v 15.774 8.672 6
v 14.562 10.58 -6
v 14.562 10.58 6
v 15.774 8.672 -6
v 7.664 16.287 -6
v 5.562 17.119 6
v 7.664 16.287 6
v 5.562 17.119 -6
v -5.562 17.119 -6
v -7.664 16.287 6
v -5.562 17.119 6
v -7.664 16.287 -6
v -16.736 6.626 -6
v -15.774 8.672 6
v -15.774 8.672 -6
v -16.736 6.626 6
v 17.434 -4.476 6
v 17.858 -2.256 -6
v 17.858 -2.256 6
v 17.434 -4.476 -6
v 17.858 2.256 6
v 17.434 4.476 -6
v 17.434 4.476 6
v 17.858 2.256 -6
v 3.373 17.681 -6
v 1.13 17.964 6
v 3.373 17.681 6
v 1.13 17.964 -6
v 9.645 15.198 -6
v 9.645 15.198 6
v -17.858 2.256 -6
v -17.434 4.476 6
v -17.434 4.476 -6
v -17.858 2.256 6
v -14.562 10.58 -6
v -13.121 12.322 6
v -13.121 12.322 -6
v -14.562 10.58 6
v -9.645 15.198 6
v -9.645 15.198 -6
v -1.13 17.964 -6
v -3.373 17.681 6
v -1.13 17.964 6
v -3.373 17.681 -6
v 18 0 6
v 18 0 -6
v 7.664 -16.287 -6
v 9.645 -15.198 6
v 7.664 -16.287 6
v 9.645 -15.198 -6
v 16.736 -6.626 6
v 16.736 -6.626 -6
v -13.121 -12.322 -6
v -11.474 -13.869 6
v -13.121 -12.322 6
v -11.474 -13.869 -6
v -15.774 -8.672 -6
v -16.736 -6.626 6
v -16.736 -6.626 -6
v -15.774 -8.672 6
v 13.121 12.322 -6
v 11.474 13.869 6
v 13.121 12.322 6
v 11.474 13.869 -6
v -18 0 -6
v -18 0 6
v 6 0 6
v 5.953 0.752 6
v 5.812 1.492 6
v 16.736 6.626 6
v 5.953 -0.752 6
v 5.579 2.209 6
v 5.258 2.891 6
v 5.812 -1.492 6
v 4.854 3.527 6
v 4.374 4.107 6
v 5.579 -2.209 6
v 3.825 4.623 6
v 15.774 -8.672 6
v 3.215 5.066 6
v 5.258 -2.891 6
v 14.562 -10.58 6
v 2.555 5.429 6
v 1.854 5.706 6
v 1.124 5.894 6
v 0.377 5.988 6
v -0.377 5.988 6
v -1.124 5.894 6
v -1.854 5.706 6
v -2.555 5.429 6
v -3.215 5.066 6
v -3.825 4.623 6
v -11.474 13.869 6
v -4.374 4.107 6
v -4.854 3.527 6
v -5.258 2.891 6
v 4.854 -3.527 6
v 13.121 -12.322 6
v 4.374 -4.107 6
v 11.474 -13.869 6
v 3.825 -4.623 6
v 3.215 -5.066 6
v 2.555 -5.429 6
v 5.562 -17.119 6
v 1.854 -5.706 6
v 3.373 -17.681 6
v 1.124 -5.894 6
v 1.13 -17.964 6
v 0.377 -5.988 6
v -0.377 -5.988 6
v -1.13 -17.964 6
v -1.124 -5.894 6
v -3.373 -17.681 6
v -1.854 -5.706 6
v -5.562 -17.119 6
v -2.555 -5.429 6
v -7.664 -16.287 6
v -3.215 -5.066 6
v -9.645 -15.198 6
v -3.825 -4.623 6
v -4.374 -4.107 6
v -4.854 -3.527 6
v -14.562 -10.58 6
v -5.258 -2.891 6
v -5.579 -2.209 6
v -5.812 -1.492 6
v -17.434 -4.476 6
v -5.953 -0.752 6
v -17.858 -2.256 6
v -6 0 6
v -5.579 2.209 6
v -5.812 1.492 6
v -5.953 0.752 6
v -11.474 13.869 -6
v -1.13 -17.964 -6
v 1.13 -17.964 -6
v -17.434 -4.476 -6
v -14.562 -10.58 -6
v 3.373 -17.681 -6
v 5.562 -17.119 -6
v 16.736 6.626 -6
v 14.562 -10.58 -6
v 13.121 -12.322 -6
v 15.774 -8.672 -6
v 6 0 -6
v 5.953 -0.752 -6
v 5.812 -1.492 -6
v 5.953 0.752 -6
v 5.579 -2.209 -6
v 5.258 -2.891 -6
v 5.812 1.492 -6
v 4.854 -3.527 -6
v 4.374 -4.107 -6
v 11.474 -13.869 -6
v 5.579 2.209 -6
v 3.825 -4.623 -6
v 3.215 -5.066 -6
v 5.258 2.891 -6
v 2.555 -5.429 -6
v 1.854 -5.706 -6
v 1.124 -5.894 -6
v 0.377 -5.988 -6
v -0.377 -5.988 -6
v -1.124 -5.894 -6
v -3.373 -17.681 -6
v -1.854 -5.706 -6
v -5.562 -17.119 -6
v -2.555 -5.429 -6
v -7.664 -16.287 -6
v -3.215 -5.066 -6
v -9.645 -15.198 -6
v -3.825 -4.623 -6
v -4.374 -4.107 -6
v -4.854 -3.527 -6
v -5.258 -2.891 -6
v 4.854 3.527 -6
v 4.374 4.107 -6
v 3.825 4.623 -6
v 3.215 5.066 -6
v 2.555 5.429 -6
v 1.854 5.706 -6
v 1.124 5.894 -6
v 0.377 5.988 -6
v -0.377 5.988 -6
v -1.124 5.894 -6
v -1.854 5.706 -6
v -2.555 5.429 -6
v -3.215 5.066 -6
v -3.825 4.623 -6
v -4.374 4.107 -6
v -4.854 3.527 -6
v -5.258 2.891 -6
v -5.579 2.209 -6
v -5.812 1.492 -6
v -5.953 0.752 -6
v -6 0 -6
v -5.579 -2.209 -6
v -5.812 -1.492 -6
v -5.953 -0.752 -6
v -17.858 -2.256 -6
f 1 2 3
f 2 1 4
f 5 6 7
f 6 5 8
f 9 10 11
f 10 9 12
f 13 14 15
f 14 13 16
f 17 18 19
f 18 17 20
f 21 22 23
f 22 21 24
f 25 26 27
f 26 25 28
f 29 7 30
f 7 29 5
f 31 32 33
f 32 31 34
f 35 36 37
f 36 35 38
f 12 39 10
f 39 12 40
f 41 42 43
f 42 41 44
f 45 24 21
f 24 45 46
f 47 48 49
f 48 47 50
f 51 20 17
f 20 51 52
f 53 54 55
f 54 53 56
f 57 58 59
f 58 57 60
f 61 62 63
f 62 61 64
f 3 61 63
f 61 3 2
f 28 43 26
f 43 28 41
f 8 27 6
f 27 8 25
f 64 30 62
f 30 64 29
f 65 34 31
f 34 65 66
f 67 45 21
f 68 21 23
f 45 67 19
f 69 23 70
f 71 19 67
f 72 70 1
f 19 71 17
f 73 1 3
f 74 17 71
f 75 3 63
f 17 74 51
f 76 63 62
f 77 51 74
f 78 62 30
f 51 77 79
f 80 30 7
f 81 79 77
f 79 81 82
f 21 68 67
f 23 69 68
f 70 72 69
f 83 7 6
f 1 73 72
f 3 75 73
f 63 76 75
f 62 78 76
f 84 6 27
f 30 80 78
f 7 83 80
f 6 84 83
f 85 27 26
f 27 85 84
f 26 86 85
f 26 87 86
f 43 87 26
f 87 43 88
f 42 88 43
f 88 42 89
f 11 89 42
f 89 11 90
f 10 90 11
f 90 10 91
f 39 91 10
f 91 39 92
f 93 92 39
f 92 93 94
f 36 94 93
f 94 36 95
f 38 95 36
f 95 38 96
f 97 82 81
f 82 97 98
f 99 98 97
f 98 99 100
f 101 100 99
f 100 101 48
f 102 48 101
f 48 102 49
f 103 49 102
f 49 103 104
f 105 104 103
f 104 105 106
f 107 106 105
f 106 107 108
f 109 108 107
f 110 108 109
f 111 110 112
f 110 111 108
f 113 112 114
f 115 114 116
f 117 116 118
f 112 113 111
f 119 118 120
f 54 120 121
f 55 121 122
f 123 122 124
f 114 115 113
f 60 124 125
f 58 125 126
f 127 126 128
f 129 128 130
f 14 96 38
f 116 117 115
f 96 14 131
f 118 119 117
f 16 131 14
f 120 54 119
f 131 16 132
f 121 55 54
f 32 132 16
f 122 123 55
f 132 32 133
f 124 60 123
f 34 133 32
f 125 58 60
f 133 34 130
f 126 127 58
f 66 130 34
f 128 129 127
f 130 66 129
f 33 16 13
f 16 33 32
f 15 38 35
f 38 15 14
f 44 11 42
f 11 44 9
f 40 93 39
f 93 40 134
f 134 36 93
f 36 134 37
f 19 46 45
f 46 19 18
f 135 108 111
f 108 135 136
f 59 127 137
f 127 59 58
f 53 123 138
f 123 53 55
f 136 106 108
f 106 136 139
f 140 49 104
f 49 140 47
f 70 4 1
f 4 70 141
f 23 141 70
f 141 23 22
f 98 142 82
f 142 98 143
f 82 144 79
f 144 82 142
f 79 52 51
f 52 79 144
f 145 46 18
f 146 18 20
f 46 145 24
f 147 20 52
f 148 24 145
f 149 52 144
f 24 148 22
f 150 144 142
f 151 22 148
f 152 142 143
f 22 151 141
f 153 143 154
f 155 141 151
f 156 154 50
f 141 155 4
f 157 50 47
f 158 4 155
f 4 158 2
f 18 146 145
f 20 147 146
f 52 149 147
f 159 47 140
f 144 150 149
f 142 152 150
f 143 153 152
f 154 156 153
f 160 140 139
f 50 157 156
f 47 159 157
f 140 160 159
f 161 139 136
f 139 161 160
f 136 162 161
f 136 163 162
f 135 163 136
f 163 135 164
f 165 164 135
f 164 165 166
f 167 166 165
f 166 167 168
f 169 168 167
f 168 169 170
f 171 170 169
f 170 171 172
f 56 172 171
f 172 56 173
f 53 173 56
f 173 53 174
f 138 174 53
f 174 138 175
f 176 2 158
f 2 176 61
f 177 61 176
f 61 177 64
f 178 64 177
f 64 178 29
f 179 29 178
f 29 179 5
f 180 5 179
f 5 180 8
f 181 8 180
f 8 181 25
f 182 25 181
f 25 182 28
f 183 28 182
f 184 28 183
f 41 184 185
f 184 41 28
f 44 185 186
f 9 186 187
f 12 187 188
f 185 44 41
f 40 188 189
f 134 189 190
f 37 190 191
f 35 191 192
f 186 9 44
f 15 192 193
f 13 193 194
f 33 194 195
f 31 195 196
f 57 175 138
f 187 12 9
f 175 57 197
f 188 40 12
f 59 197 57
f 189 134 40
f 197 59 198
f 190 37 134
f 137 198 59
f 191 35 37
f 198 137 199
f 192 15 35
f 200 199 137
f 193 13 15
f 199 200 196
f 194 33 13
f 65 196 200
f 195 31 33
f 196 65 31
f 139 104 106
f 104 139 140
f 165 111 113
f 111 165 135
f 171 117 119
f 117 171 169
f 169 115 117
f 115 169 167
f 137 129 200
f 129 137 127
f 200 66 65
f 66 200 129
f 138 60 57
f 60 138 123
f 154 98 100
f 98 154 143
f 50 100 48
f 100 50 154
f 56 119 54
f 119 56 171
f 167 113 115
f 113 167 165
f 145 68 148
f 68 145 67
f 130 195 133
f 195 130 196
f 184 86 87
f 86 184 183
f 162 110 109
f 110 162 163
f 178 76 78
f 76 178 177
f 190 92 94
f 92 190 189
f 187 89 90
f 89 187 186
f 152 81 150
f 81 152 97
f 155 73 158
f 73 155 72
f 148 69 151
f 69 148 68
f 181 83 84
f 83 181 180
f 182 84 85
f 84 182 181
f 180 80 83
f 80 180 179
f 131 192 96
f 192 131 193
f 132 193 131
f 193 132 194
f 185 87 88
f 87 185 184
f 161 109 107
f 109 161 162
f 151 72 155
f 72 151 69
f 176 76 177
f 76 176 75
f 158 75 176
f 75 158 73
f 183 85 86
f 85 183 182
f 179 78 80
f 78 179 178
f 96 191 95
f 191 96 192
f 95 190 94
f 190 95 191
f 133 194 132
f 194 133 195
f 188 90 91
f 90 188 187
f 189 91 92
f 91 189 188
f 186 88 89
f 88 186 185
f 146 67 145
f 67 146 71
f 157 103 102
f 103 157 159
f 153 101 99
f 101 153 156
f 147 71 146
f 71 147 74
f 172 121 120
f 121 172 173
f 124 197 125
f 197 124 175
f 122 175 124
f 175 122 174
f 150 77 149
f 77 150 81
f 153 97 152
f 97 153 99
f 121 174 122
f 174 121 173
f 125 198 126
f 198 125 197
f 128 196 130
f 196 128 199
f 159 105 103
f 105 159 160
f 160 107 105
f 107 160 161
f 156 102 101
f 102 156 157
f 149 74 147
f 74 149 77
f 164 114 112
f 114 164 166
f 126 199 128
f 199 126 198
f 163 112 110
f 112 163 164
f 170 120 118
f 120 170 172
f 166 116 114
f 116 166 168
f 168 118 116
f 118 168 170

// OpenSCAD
$fn = 50;


difference() {
	union() {
		translate(v = [0, 0, -6.0000000000]) {
			cylinder(h = 12, r = 18.0000000000);
		}
	}
	union() {
		translate(v = [0, 0, -100.0000000000]) {
			cylinder(h = 200, r = 6);
		}
	}
}
